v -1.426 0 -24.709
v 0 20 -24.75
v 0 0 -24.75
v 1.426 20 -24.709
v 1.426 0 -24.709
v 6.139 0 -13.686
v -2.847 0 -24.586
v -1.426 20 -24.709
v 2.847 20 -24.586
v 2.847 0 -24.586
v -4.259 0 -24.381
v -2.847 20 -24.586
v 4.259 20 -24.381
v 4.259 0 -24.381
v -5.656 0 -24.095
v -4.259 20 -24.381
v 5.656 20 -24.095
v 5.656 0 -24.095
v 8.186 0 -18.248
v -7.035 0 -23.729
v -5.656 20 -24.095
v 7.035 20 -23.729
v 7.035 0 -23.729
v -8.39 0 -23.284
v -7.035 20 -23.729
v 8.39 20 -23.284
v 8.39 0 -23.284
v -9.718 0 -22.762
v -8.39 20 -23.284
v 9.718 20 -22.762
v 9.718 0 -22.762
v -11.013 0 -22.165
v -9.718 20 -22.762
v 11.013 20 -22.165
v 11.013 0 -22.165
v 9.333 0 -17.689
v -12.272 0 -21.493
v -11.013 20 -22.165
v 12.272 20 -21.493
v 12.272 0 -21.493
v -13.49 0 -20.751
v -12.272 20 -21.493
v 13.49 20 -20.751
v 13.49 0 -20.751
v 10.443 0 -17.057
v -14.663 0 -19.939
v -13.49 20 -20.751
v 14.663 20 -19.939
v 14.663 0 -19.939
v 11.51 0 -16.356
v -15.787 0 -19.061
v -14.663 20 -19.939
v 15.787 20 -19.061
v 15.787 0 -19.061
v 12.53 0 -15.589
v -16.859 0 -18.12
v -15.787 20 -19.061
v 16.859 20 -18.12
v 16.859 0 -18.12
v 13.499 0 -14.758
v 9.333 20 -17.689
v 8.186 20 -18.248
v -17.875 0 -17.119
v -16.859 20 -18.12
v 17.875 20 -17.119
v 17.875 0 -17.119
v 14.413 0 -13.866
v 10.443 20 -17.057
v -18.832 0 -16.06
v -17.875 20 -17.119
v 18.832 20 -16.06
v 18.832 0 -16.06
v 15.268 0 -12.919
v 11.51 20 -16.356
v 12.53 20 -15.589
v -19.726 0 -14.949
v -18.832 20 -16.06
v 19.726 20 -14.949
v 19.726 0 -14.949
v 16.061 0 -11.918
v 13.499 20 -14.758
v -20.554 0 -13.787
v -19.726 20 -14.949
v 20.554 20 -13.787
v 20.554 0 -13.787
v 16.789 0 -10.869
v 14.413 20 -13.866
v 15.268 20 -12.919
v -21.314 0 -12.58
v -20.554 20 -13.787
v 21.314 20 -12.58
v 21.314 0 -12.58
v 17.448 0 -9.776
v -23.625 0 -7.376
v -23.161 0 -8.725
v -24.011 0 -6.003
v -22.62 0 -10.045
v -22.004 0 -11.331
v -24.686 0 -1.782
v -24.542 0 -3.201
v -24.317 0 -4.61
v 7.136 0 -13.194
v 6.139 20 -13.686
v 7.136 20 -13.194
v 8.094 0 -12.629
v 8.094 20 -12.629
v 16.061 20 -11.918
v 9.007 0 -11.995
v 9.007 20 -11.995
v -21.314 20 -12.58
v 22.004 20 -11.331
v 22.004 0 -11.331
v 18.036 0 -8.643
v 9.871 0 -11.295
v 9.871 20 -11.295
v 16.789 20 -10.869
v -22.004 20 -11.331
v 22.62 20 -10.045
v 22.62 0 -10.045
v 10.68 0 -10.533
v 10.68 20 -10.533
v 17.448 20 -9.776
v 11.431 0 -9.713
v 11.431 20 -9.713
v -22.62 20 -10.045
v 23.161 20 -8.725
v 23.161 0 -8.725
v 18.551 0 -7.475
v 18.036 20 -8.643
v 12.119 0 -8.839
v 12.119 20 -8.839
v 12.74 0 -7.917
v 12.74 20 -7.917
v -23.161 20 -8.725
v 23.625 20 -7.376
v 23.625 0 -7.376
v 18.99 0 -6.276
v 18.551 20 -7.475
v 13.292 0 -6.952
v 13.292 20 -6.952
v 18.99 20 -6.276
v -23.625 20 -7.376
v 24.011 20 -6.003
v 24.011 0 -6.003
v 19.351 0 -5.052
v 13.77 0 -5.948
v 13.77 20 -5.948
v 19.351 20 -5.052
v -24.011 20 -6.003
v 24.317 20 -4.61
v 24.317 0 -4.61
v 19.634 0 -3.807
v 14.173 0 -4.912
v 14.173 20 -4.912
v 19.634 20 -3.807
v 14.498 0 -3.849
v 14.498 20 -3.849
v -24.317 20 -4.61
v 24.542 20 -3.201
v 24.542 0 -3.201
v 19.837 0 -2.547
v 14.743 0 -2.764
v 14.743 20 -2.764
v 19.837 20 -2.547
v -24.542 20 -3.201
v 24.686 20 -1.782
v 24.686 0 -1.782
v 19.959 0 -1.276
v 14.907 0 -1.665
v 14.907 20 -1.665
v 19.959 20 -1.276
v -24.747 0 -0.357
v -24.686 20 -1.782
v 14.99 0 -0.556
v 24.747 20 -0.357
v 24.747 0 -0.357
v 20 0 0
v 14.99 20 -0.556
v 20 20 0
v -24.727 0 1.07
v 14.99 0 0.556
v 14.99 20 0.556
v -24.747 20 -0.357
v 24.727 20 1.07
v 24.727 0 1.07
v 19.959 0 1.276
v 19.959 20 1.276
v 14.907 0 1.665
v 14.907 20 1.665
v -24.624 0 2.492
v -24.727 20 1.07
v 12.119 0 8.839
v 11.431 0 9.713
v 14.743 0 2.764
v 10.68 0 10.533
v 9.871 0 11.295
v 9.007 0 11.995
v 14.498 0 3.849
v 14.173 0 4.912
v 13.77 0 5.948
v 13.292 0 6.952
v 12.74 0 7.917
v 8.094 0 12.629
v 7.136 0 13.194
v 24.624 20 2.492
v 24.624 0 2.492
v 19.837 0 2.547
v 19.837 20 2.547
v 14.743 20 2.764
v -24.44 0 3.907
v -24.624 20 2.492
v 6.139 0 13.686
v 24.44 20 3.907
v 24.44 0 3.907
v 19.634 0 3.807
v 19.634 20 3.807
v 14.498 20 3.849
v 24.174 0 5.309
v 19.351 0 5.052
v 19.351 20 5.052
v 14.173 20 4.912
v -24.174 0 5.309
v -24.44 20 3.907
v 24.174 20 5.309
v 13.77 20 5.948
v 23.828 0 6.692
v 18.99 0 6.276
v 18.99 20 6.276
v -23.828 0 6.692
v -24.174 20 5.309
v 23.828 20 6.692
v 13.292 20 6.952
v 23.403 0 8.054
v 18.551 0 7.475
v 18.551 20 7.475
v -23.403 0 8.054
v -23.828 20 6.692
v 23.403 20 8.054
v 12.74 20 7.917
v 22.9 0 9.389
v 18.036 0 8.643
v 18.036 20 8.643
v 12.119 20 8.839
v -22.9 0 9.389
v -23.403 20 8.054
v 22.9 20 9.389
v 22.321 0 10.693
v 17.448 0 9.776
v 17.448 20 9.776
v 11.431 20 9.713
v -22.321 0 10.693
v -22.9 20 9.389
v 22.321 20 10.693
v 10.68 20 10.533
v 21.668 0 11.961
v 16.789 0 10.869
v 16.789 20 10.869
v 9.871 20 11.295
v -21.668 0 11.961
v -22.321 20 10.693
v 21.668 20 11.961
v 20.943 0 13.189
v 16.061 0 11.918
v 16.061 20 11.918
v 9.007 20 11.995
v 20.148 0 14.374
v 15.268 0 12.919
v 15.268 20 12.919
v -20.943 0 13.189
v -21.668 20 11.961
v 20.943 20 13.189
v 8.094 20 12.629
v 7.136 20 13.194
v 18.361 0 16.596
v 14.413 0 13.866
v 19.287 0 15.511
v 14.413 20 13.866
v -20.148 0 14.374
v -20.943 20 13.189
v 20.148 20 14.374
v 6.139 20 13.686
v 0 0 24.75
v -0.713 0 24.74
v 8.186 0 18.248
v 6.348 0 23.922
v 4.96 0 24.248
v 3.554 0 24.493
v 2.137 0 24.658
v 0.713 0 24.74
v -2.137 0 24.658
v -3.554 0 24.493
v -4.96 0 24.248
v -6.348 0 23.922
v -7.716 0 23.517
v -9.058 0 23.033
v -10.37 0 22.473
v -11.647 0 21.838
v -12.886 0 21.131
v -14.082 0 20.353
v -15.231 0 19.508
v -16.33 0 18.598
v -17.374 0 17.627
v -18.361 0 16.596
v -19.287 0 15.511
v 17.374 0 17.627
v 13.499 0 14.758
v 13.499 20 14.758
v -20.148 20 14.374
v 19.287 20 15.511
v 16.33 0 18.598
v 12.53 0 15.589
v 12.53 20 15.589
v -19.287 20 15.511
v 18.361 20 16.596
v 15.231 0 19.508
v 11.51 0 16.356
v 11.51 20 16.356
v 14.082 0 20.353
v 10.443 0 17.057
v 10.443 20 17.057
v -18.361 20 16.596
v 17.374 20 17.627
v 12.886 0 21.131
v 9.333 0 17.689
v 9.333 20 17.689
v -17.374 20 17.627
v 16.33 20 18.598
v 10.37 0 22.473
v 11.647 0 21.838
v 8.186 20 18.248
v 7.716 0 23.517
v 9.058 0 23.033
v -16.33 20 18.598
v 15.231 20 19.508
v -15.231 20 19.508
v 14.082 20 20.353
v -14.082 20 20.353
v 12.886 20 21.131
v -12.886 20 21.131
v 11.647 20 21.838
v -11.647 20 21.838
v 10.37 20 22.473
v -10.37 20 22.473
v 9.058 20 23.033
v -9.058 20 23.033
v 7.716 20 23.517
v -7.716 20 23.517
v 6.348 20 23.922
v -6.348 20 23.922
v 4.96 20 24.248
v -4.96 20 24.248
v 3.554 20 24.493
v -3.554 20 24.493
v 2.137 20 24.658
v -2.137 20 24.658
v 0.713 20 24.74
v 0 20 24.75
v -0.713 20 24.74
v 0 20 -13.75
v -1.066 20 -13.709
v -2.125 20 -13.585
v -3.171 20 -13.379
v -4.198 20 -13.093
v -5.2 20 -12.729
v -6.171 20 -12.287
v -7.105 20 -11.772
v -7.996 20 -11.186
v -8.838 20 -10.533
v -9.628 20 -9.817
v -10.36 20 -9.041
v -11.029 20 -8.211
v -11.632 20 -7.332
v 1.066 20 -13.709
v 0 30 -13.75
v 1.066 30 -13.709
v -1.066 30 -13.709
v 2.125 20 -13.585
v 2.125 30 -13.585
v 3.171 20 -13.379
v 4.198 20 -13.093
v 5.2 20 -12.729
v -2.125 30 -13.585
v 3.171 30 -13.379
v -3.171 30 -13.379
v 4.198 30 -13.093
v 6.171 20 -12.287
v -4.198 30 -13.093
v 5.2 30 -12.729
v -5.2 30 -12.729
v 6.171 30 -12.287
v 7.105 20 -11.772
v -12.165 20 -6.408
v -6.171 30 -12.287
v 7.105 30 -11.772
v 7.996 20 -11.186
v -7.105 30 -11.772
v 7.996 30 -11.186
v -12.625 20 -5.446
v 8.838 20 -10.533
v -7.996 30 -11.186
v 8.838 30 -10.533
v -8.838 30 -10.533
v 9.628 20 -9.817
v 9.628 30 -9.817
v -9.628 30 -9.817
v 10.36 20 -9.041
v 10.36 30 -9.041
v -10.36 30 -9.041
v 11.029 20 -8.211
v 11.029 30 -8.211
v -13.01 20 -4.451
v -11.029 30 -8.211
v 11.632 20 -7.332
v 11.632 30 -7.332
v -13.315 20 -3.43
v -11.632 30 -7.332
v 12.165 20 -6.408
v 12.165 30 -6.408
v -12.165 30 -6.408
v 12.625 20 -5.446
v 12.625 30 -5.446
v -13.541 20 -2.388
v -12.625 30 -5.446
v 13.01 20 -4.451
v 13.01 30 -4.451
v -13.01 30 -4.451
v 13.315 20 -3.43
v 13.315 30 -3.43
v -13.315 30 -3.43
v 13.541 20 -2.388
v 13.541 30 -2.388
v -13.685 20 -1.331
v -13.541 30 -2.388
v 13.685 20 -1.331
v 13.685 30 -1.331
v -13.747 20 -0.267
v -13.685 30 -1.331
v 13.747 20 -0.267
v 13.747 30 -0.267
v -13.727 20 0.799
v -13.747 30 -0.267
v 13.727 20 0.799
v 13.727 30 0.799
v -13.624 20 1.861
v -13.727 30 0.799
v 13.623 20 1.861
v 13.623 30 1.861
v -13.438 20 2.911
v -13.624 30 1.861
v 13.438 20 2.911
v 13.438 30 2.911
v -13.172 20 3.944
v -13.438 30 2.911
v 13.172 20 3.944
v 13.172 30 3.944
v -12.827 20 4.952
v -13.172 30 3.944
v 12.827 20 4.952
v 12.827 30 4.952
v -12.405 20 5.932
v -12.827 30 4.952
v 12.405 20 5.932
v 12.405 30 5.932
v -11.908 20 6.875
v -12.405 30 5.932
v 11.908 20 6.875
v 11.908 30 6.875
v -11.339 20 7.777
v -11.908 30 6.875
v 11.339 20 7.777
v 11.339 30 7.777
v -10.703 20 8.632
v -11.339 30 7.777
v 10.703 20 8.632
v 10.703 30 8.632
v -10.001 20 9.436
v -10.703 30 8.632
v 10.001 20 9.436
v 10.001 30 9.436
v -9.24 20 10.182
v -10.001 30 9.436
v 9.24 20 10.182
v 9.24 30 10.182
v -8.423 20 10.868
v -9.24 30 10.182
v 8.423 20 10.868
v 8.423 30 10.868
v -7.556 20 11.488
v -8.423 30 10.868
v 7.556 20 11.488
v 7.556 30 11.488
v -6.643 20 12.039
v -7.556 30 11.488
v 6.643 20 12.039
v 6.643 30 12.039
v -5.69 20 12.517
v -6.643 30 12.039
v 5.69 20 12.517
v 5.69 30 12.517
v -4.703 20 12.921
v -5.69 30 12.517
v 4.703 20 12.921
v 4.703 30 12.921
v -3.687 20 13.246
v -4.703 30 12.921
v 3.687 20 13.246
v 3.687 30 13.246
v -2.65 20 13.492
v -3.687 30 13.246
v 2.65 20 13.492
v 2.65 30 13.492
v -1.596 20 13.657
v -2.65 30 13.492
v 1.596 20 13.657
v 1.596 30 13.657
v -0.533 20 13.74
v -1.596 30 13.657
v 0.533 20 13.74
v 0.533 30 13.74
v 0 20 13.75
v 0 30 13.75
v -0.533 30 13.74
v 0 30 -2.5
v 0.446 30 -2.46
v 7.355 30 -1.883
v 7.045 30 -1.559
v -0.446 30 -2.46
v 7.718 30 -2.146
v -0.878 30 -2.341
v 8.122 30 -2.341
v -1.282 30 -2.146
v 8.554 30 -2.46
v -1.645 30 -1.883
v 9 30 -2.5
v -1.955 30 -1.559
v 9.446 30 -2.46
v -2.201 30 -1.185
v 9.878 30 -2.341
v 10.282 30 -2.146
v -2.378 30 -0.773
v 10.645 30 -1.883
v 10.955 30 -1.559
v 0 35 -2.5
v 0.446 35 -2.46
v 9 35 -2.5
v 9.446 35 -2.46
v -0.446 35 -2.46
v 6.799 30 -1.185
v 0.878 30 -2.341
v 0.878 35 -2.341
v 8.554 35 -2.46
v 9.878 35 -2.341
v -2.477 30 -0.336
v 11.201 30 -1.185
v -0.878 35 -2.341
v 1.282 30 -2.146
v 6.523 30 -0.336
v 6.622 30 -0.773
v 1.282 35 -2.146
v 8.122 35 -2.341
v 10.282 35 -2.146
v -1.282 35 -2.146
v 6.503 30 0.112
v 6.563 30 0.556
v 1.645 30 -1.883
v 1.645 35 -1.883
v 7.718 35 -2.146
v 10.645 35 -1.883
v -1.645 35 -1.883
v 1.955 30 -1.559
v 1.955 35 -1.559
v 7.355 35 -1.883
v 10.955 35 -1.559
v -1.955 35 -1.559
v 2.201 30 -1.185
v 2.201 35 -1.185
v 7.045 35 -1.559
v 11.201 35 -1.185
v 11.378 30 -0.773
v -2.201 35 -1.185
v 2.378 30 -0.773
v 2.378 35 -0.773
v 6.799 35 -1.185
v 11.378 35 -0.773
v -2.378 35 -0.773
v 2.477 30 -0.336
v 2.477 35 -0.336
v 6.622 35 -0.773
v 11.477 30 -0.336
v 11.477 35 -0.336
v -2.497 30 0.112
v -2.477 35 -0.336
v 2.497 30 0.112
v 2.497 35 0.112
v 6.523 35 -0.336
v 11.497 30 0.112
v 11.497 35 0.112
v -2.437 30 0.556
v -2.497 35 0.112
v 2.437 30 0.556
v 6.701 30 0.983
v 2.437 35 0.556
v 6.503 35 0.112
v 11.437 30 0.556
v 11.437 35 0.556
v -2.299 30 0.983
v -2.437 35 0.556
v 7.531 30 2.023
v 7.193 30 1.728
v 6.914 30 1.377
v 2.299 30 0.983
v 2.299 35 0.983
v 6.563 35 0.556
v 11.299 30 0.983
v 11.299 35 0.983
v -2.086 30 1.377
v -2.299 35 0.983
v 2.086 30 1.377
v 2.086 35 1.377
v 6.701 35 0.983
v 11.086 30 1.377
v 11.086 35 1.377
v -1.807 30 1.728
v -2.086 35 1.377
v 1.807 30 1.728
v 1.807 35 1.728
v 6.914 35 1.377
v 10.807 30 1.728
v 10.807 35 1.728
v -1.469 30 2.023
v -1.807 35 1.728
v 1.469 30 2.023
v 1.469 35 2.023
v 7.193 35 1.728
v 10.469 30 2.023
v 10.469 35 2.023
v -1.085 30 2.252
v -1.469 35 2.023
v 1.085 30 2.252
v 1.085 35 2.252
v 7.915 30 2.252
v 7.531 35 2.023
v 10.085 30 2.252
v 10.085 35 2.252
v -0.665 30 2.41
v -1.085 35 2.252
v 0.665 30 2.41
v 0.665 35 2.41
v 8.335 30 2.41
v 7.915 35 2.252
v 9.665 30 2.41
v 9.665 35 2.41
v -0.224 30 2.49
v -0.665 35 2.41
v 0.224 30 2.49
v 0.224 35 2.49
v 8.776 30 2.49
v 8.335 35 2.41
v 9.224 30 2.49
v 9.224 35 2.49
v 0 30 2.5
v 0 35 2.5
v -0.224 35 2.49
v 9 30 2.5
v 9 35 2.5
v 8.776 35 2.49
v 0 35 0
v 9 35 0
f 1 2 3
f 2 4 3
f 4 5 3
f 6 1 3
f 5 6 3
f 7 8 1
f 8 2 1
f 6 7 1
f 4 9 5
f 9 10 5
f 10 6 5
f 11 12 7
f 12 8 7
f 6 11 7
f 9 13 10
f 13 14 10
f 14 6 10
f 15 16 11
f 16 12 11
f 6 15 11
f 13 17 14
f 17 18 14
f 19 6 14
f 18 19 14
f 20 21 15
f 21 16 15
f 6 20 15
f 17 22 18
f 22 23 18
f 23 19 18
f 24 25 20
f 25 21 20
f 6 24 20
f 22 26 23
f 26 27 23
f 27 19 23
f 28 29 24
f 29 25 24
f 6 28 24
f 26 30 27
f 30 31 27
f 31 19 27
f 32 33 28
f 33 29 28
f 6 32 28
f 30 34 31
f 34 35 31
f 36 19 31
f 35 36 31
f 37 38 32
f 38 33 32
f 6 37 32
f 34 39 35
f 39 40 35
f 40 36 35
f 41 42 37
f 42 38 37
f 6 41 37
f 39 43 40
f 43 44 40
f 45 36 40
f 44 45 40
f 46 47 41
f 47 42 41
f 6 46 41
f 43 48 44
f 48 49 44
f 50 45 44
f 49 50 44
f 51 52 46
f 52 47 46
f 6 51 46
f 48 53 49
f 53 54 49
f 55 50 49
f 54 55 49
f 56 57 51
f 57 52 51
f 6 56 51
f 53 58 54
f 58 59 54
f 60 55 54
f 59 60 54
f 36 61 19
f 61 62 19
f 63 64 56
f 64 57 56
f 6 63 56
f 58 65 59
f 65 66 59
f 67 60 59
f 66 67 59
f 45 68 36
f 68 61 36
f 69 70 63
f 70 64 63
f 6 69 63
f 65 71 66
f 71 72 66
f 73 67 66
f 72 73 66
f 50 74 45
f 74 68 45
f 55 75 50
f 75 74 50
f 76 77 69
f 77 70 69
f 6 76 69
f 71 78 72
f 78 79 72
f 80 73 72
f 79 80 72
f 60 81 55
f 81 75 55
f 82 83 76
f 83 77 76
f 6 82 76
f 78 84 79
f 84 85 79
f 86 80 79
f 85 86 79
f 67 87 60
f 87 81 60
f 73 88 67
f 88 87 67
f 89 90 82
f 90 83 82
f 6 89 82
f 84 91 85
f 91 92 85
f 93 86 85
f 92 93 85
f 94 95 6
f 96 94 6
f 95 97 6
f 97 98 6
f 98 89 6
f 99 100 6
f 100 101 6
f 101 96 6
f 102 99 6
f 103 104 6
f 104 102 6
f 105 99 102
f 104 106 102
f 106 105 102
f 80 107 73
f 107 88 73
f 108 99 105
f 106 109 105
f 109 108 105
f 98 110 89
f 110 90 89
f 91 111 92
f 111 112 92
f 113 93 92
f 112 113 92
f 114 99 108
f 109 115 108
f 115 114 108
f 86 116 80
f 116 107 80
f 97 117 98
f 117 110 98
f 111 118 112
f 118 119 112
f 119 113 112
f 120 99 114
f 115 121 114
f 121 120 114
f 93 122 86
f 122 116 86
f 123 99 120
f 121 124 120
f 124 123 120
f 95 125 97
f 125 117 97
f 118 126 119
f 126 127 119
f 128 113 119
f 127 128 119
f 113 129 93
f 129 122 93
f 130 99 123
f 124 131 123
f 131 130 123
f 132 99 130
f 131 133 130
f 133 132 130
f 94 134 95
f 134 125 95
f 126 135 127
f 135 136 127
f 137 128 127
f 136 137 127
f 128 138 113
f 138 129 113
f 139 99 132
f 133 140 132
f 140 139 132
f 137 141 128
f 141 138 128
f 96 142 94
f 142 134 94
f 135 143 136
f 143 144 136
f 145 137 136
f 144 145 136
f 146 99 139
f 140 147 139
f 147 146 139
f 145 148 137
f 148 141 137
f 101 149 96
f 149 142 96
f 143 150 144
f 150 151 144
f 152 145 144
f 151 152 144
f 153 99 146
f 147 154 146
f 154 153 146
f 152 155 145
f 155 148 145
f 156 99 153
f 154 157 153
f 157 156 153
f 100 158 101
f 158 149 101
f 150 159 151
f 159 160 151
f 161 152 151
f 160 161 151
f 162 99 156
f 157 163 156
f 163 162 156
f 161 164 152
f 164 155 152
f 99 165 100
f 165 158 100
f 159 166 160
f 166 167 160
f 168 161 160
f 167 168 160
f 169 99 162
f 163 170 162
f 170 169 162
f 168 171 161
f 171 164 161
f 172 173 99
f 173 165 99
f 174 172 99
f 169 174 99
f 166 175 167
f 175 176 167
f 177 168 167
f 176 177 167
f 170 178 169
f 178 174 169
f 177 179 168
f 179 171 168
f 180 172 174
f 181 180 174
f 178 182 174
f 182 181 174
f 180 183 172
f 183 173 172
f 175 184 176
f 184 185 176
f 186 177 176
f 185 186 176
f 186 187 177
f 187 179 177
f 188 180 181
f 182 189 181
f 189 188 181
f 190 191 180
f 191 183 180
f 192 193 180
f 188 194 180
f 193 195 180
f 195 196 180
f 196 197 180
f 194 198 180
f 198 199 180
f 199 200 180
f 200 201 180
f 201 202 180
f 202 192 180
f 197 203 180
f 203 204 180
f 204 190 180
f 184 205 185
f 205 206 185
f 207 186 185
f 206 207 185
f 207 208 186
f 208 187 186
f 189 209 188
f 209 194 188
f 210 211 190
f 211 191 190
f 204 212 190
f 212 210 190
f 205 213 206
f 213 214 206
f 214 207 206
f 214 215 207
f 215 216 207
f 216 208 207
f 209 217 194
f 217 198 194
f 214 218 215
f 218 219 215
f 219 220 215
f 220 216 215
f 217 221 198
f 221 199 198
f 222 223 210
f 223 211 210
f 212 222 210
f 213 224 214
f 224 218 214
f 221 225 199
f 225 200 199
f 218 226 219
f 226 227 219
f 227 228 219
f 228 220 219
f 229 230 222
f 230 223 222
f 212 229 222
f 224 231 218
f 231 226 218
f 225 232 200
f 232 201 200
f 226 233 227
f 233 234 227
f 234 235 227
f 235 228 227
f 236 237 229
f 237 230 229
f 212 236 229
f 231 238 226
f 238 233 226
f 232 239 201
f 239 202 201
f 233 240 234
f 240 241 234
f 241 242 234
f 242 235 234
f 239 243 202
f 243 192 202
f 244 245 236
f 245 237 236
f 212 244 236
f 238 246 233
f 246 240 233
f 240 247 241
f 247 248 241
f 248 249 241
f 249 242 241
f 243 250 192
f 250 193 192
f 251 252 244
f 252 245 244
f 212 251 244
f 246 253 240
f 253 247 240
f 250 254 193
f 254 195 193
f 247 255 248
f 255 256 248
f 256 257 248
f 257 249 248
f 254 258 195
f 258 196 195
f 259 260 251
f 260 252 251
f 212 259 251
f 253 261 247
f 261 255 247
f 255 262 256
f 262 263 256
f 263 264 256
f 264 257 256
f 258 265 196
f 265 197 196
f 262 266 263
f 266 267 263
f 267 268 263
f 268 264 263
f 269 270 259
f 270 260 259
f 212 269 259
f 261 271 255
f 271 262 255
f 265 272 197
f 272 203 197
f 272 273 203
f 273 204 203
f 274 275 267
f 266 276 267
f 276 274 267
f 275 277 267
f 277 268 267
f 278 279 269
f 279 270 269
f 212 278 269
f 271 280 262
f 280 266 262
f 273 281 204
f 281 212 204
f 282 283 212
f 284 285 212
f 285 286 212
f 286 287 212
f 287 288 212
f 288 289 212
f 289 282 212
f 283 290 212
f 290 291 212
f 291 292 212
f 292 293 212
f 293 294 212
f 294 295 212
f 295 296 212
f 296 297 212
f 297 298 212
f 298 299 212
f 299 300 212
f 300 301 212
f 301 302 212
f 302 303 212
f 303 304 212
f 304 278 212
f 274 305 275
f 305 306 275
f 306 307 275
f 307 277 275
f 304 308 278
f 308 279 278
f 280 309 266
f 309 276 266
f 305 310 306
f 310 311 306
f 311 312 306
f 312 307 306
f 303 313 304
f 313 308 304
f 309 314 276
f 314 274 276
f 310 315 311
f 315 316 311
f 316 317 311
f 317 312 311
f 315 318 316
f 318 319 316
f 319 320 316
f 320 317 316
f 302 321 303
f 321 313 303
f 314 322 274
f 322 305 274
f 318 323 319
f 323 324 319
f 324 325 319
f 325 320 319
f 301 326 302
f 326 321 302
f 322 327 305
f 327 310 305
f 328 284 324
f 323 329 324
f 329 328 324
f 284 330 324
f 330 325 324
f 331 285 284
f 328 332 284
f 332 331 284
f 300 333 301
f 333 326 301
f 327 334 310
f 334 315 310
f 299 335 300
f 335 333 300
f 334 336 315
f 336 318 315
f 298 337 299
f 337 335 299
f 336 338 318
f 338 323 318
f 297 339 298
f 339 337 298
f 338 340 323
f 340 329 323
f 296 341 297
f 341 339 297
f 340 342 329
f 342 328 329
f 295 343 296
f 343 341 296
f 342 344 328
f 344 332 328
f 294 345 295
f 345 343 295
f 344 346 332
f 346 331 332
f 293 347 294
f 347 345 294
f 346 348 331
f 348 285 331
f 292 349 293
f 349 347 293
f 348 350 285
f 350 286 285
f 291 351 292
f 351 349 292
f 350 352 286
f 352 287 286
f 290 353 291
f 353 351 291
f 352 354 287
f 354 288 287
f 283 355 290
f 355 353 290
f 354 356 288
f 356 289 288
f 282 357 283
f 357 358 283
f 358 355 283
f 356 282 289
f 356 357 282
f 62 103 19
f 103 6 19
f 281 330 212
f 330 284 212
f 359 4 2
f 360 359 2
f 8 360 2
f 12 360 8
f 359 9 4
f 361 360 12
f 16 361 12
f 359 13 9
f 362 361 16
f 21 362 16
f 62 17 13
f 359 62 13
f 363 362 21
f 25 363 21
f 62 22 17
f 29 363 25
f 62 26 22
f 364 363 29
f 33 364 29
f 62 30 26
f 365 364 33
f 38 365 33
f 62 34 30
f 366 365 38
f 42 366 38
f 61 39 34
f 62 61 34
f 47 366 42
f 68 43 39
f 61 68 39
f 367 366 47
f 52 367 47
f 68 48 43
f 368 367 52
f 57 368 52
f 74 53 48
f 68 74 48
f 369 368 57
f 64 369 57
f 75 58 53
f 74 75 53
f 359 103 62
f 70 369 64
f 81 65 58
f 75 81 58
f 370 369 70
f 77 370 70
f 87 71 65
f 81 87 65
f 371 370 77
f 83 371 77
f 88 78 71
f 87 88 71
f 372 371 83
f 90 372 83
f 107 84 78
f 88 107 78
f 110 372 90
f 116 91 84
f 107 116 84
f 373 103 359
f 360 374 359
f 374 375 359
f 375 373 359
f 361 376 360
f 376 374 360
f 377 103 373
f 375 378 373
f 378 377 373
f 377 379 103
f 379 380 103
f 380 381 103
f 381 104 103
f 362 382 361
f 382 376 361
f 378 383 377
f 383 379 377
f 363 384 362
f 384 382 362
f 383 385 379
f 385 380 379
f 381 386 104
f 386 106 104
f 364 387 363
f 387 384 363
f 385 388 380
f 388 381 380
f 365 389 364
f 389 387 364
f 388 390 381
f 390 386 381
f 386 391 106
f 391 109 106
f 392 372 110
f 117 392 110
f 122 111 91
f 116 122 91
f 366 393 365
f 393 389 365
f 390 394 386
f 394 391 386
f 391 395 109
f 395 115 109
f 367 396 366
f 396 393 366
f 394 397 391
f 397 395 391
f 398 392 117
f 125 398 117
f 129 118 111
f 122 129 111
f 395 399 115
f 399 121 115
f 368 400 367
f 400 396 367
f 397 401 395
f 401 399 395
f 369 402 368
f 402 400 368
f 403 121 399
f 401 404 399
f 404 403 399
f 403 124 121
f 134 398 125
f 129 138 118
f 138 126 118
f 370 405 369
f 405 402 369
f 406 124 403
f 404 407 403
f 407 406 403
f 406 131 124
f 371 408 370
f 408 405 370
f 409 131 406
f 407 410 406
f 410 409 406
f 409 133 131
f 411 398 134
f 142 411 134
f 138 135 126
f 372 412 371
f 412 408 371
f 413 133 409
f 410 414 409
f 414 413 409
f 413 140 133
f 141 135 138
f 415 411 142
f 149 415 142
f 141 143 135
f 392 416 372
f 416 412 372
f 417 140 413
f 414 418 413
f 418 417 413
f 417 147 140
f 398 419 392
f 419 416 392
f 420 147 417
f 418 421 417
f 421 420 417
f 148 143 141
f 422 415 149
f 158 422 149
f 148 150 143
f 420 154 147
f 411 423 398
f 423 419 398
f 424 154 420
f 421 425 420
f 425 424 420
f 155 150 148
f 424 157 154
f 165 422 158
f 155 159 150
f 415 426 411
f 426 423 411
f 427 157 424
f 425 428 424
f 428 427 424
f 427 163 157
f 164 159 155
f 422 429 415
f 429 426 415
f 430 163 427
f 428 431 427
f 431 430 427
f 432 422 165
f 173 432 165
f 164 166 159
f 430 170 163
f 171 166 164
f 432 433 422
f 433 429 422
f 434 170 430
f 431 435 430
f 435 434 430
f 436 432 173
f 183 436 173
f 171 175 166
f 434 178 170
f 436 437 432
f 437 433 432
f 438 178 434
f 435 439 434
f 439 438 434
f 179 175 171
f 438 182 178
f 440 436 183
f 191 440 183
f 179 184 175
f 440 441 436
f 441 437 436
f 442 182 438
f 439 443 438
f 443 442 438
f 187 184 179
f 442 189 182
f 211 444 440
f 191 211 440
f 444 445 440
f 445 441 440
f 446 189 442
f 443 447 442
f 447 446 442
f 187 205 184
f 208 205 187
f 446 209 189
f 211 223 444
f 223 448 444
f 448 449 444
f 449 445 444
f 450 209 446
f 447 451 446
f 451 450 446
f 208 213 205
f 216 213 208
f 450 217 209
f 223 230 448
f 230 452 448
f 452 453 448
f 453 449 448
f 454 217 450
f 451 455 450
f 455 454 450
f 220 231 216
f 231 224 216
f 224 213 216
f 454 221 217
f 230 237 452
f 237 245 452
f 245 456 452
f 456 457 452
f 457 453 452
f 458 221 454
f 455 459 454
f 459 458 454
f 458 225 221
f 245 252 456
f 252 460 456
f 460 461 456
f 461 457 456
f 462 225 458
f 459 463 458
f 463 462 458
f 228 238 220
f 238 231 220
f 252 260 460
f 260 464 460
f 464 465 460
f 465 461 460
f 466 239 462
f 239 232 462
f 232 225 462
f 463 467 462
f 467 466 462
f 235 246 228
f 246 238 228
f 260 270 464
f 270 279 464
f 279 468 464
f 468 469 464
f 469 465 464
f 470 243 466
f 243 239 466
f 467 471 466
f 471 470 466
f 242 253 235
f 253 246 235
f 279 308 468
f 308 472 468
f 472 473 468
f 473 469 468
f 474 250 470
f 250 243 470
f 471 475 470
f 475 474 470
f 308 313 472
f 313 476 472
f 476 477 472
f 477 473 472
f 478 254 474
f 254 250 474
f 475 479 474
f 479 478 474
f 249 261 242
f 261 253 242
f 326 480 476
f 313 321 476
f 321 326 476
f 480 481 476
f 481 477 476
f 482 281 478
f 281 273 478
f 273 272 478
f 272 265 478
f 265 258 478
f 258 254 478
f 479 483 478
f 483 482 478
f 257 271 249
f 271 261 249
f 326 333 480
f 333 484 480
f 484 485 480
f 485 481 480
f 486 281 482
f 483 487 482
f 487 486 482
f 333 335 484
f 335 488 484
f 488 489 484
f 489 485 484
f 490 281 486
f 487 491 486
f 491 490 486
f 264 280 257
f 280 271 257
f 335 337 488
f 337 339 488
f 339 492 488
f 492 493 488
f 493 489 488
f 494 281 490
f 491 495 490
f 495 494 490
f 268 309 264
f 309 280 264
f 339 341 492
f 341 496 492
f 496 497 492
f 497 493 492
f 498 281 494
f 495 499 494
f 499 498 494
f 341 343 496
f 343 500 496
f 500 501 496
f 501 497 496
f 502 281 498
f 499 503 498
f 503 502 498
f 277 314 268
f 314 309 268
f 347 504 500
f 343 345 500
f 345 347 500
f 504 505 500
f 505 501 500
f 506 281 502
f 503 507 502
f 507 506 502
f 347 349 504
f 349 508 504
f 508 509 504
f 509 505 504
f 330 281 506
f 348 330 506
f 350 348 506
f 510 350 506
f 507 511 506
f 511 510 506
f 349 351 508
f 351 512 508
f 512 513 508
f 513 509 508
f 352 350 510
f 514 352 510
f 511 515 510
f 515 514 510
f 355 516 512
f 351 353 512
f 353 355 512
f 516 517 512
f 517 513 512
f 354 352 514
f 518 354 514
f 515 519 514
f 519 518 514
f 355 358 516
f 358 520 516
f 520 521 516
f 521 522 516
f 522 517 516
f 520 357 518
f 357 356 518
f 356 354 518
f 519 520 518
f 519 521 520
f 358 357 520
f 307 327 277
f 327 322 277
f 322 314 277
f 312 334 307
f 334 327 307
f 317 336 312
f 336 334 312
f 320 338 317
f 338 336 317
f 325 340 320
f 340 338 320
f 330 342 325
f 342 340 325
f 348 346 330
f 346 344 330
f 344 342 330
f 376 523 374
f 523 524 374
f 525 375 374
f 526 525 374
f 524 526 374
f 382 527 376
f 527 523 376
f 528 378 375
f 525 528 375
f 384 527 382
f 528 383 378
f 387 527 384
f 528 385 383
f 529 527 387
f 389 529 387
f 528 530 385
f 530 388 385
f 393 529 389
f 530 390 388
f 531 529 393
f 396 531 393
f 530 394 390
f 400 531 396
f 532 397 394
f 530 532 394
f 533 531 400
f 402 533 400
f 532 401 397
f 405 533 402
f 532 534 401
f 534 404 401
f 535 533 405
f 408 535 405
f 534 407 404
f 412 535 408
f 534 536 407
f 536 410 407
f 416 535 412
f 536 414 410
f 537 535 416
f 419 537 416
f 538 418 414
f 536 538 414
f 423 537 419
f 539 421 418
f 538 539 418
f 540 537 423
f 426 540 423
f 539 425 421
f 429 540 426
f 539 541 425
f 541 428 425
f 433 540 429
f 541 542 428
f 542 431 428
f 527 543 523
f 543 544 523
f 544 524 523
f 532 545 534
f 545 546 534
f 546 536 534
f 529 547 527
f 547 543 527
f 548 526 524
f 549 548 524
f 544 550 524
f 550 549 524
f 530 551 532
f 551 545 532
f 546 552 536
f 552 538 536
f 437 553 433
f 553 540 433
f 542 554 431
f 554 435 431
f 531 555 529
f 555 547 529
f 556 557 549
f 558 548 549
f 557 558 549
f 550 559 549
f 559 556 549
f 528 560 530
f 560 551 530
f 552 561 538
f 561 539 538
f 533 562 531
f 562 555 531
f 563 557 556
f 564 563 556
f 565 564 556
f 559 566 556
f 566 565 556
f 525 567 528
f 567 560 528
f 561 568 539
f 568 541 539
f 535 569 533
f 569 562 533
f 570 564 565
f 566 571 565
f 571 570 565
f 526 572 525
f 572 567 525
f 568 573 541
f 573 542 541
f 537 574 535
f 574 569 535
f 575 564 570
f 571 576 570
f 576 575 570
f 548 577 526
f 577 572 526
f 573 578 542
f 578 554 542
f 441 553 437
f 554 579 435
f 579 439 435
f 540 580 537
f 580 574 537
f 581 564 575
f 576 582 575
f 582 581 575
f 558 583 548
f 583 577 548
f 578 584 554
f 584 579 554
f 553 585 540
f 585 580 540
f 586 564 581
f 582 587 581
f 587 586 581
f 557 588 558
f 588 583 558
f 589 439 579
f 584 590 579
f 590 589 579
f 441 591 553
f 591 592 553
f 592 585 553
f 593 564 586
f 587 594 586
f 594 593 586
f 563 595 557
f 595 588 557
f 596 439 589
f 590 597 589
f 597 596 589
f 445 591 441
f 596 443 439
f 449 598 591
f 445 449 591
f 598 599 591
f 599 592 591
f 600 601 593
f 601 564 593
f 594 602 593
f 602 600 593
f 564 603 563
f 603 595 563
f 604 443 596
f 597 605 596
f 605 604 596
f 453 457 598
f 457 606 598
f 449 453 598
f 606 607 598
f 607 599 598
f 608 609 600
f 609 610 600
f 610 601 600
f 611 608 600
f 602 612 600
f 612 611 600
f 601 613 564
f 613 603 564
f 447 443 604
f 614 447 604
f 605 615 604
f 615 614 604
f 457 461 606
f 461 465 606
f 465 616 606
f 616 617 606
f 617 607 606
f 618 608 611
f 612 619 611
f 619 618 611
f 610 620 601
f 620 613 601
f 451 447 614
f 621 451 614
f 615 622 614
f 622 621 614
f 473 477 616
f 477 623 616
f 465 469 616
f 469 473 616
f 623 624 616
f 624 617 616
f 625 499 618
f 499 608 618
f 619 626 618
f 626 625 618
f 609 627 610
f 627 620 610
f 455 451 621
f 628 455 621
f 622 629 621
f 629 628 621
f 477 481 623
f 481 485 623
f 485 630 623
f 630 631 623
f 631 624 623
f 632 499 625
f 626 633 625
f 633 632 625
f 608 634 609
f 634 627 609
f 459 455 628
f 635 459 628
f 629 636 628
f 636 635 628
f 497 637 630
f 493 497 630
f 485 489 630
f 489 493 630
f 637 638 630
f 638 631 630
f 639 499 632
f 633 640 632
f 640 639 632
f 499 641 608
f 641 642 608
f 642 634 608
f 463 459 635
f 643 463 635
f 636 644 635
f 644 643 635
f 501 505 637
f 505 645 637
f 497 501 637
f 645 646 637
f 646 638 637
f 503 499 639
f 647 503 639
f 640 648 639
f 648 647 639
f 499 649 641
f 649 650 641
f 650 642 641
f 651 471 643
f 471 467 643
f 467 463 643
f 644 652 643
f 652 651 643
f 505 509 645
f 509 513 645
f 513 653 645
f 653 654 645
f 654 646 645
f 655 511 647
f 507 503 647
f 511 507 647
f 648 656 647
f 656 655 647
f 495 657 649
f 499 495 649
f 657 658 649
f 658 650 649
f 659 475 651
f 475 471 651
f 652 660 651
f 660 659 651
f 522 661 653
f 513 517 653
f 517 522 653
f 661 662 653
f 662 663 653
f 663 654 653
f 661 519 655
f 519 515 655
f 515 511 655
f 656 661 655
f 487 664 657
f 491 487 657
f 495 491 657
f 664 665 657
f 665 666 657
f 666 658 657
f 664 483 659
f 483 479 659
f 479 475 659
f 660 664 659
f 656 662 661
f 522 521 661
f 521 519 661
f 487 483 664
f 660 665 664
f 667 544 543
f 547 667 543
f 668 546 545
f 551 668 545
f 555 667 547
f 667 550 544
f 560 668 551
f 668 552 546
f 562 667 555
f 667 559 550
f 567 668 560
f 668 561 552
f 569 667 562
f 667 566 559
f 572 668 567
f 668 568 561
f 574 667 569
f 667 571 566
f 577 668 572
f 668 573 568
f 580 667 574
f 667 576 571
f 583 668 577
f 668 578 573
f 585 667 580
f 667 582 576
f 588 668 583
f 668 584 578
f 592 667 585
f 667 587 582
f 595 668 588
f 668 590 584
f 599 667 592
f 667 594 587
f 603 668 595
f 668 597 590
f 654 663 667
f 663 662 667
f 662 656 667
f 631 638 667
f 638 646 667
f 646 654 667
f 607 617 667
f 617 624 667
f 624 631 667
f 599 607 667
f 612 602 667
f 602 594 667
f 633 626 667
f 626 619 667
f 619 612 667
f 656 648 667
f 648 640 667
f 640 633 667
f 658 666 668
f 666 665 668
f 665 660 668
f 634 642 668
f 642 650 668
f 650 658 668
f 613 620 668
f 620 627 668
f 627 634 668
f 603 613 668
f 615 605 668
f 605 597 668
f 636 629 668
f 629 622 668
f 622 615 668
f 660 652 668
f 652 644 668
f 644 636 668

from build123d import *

# Parameters (mm, degrees)
RESSALTO_EXTRUS_O2_DEPTH = 20
ESBO_O3_R                = 13.75
BOSS_EXTRUDE1_DEPTH      = 10
SKETCH2_R                = 2.5
BOSS_EXTRUDE2_DEPTH      = 5
CUT_EXTRUDE2_DEPTH       = 20


with BuildPart() as part:
    # Esboço1 → Ressalto-extrusão2 (new body)
    with BuildSketch(Plane(origin=(0, 0, 0), x_dir=(1, 0, 0), z_dir=(0, 1, 0))):
        with BuildLine():
            ThreePointArc((-12.375, -21.434128744), (0, -24.75), (12.375, -21.434128744))
            ThreePointArc((12.375, -21.434128744), (21.434128744, -12.375), (24.75, 0))
            ThreePointArc((24.75, 0), (-12.375, 21.434128744), (-12.375, -21.434128744))
        make_face()
    extrude(amount=RESSALTO_EXTRUS_O2_DEPTH)

    # Esboço3 → Boss-Extrude1 (add)
    with BuildSketch(Plane(origin=(0, 20, 0), x_dir=(1, 0, 0), z_dir=(0, 1, 0))):
        Circle(ESBO_O3_R)
    extrude(amount=BOSS_EXTRUDE1_DEPTH)

    # Sketch2 → Boss-Extrude2 (add)
    with BuildSketch(Plane(origin=(0, 30, 0), x_dir=(1, 0, 0), z_dir=(0, 1, 0))):
        Circle(SKETCH2_R)
        with Locations((9, 0)):
            Circle(SKETCH2_R)
    extrude(amount=BOSS_EXTRUDE2_DEPTH)

    # Sketch3 → Cut-Extrude2 (cut)
    with BuildSketch(Plane(origin=(0, 20, 0), x_dir=(1, 0, 0), z_dir=(0, 1, 0))):
        with BuildLine():
            Line((8.185723081, -18.248121483), (6.13929231, -13.686091112))
            ThreePointArc((6.13929231, -13.686091112), (15, 0), (6.13929231, 13.686091112))
            Line((6.13929231, 13.686091112), (8.185723081, 18.248121483))
            ThreePointArc((8.185723081, 18.248121483), (20, 0), (8.185723081, -18.248121483))
        make_face()
    extrude(amount=-CUT_EXTRUDE2_DEPTH, mode=Mode.SUBTRACT)


solid = part.part
